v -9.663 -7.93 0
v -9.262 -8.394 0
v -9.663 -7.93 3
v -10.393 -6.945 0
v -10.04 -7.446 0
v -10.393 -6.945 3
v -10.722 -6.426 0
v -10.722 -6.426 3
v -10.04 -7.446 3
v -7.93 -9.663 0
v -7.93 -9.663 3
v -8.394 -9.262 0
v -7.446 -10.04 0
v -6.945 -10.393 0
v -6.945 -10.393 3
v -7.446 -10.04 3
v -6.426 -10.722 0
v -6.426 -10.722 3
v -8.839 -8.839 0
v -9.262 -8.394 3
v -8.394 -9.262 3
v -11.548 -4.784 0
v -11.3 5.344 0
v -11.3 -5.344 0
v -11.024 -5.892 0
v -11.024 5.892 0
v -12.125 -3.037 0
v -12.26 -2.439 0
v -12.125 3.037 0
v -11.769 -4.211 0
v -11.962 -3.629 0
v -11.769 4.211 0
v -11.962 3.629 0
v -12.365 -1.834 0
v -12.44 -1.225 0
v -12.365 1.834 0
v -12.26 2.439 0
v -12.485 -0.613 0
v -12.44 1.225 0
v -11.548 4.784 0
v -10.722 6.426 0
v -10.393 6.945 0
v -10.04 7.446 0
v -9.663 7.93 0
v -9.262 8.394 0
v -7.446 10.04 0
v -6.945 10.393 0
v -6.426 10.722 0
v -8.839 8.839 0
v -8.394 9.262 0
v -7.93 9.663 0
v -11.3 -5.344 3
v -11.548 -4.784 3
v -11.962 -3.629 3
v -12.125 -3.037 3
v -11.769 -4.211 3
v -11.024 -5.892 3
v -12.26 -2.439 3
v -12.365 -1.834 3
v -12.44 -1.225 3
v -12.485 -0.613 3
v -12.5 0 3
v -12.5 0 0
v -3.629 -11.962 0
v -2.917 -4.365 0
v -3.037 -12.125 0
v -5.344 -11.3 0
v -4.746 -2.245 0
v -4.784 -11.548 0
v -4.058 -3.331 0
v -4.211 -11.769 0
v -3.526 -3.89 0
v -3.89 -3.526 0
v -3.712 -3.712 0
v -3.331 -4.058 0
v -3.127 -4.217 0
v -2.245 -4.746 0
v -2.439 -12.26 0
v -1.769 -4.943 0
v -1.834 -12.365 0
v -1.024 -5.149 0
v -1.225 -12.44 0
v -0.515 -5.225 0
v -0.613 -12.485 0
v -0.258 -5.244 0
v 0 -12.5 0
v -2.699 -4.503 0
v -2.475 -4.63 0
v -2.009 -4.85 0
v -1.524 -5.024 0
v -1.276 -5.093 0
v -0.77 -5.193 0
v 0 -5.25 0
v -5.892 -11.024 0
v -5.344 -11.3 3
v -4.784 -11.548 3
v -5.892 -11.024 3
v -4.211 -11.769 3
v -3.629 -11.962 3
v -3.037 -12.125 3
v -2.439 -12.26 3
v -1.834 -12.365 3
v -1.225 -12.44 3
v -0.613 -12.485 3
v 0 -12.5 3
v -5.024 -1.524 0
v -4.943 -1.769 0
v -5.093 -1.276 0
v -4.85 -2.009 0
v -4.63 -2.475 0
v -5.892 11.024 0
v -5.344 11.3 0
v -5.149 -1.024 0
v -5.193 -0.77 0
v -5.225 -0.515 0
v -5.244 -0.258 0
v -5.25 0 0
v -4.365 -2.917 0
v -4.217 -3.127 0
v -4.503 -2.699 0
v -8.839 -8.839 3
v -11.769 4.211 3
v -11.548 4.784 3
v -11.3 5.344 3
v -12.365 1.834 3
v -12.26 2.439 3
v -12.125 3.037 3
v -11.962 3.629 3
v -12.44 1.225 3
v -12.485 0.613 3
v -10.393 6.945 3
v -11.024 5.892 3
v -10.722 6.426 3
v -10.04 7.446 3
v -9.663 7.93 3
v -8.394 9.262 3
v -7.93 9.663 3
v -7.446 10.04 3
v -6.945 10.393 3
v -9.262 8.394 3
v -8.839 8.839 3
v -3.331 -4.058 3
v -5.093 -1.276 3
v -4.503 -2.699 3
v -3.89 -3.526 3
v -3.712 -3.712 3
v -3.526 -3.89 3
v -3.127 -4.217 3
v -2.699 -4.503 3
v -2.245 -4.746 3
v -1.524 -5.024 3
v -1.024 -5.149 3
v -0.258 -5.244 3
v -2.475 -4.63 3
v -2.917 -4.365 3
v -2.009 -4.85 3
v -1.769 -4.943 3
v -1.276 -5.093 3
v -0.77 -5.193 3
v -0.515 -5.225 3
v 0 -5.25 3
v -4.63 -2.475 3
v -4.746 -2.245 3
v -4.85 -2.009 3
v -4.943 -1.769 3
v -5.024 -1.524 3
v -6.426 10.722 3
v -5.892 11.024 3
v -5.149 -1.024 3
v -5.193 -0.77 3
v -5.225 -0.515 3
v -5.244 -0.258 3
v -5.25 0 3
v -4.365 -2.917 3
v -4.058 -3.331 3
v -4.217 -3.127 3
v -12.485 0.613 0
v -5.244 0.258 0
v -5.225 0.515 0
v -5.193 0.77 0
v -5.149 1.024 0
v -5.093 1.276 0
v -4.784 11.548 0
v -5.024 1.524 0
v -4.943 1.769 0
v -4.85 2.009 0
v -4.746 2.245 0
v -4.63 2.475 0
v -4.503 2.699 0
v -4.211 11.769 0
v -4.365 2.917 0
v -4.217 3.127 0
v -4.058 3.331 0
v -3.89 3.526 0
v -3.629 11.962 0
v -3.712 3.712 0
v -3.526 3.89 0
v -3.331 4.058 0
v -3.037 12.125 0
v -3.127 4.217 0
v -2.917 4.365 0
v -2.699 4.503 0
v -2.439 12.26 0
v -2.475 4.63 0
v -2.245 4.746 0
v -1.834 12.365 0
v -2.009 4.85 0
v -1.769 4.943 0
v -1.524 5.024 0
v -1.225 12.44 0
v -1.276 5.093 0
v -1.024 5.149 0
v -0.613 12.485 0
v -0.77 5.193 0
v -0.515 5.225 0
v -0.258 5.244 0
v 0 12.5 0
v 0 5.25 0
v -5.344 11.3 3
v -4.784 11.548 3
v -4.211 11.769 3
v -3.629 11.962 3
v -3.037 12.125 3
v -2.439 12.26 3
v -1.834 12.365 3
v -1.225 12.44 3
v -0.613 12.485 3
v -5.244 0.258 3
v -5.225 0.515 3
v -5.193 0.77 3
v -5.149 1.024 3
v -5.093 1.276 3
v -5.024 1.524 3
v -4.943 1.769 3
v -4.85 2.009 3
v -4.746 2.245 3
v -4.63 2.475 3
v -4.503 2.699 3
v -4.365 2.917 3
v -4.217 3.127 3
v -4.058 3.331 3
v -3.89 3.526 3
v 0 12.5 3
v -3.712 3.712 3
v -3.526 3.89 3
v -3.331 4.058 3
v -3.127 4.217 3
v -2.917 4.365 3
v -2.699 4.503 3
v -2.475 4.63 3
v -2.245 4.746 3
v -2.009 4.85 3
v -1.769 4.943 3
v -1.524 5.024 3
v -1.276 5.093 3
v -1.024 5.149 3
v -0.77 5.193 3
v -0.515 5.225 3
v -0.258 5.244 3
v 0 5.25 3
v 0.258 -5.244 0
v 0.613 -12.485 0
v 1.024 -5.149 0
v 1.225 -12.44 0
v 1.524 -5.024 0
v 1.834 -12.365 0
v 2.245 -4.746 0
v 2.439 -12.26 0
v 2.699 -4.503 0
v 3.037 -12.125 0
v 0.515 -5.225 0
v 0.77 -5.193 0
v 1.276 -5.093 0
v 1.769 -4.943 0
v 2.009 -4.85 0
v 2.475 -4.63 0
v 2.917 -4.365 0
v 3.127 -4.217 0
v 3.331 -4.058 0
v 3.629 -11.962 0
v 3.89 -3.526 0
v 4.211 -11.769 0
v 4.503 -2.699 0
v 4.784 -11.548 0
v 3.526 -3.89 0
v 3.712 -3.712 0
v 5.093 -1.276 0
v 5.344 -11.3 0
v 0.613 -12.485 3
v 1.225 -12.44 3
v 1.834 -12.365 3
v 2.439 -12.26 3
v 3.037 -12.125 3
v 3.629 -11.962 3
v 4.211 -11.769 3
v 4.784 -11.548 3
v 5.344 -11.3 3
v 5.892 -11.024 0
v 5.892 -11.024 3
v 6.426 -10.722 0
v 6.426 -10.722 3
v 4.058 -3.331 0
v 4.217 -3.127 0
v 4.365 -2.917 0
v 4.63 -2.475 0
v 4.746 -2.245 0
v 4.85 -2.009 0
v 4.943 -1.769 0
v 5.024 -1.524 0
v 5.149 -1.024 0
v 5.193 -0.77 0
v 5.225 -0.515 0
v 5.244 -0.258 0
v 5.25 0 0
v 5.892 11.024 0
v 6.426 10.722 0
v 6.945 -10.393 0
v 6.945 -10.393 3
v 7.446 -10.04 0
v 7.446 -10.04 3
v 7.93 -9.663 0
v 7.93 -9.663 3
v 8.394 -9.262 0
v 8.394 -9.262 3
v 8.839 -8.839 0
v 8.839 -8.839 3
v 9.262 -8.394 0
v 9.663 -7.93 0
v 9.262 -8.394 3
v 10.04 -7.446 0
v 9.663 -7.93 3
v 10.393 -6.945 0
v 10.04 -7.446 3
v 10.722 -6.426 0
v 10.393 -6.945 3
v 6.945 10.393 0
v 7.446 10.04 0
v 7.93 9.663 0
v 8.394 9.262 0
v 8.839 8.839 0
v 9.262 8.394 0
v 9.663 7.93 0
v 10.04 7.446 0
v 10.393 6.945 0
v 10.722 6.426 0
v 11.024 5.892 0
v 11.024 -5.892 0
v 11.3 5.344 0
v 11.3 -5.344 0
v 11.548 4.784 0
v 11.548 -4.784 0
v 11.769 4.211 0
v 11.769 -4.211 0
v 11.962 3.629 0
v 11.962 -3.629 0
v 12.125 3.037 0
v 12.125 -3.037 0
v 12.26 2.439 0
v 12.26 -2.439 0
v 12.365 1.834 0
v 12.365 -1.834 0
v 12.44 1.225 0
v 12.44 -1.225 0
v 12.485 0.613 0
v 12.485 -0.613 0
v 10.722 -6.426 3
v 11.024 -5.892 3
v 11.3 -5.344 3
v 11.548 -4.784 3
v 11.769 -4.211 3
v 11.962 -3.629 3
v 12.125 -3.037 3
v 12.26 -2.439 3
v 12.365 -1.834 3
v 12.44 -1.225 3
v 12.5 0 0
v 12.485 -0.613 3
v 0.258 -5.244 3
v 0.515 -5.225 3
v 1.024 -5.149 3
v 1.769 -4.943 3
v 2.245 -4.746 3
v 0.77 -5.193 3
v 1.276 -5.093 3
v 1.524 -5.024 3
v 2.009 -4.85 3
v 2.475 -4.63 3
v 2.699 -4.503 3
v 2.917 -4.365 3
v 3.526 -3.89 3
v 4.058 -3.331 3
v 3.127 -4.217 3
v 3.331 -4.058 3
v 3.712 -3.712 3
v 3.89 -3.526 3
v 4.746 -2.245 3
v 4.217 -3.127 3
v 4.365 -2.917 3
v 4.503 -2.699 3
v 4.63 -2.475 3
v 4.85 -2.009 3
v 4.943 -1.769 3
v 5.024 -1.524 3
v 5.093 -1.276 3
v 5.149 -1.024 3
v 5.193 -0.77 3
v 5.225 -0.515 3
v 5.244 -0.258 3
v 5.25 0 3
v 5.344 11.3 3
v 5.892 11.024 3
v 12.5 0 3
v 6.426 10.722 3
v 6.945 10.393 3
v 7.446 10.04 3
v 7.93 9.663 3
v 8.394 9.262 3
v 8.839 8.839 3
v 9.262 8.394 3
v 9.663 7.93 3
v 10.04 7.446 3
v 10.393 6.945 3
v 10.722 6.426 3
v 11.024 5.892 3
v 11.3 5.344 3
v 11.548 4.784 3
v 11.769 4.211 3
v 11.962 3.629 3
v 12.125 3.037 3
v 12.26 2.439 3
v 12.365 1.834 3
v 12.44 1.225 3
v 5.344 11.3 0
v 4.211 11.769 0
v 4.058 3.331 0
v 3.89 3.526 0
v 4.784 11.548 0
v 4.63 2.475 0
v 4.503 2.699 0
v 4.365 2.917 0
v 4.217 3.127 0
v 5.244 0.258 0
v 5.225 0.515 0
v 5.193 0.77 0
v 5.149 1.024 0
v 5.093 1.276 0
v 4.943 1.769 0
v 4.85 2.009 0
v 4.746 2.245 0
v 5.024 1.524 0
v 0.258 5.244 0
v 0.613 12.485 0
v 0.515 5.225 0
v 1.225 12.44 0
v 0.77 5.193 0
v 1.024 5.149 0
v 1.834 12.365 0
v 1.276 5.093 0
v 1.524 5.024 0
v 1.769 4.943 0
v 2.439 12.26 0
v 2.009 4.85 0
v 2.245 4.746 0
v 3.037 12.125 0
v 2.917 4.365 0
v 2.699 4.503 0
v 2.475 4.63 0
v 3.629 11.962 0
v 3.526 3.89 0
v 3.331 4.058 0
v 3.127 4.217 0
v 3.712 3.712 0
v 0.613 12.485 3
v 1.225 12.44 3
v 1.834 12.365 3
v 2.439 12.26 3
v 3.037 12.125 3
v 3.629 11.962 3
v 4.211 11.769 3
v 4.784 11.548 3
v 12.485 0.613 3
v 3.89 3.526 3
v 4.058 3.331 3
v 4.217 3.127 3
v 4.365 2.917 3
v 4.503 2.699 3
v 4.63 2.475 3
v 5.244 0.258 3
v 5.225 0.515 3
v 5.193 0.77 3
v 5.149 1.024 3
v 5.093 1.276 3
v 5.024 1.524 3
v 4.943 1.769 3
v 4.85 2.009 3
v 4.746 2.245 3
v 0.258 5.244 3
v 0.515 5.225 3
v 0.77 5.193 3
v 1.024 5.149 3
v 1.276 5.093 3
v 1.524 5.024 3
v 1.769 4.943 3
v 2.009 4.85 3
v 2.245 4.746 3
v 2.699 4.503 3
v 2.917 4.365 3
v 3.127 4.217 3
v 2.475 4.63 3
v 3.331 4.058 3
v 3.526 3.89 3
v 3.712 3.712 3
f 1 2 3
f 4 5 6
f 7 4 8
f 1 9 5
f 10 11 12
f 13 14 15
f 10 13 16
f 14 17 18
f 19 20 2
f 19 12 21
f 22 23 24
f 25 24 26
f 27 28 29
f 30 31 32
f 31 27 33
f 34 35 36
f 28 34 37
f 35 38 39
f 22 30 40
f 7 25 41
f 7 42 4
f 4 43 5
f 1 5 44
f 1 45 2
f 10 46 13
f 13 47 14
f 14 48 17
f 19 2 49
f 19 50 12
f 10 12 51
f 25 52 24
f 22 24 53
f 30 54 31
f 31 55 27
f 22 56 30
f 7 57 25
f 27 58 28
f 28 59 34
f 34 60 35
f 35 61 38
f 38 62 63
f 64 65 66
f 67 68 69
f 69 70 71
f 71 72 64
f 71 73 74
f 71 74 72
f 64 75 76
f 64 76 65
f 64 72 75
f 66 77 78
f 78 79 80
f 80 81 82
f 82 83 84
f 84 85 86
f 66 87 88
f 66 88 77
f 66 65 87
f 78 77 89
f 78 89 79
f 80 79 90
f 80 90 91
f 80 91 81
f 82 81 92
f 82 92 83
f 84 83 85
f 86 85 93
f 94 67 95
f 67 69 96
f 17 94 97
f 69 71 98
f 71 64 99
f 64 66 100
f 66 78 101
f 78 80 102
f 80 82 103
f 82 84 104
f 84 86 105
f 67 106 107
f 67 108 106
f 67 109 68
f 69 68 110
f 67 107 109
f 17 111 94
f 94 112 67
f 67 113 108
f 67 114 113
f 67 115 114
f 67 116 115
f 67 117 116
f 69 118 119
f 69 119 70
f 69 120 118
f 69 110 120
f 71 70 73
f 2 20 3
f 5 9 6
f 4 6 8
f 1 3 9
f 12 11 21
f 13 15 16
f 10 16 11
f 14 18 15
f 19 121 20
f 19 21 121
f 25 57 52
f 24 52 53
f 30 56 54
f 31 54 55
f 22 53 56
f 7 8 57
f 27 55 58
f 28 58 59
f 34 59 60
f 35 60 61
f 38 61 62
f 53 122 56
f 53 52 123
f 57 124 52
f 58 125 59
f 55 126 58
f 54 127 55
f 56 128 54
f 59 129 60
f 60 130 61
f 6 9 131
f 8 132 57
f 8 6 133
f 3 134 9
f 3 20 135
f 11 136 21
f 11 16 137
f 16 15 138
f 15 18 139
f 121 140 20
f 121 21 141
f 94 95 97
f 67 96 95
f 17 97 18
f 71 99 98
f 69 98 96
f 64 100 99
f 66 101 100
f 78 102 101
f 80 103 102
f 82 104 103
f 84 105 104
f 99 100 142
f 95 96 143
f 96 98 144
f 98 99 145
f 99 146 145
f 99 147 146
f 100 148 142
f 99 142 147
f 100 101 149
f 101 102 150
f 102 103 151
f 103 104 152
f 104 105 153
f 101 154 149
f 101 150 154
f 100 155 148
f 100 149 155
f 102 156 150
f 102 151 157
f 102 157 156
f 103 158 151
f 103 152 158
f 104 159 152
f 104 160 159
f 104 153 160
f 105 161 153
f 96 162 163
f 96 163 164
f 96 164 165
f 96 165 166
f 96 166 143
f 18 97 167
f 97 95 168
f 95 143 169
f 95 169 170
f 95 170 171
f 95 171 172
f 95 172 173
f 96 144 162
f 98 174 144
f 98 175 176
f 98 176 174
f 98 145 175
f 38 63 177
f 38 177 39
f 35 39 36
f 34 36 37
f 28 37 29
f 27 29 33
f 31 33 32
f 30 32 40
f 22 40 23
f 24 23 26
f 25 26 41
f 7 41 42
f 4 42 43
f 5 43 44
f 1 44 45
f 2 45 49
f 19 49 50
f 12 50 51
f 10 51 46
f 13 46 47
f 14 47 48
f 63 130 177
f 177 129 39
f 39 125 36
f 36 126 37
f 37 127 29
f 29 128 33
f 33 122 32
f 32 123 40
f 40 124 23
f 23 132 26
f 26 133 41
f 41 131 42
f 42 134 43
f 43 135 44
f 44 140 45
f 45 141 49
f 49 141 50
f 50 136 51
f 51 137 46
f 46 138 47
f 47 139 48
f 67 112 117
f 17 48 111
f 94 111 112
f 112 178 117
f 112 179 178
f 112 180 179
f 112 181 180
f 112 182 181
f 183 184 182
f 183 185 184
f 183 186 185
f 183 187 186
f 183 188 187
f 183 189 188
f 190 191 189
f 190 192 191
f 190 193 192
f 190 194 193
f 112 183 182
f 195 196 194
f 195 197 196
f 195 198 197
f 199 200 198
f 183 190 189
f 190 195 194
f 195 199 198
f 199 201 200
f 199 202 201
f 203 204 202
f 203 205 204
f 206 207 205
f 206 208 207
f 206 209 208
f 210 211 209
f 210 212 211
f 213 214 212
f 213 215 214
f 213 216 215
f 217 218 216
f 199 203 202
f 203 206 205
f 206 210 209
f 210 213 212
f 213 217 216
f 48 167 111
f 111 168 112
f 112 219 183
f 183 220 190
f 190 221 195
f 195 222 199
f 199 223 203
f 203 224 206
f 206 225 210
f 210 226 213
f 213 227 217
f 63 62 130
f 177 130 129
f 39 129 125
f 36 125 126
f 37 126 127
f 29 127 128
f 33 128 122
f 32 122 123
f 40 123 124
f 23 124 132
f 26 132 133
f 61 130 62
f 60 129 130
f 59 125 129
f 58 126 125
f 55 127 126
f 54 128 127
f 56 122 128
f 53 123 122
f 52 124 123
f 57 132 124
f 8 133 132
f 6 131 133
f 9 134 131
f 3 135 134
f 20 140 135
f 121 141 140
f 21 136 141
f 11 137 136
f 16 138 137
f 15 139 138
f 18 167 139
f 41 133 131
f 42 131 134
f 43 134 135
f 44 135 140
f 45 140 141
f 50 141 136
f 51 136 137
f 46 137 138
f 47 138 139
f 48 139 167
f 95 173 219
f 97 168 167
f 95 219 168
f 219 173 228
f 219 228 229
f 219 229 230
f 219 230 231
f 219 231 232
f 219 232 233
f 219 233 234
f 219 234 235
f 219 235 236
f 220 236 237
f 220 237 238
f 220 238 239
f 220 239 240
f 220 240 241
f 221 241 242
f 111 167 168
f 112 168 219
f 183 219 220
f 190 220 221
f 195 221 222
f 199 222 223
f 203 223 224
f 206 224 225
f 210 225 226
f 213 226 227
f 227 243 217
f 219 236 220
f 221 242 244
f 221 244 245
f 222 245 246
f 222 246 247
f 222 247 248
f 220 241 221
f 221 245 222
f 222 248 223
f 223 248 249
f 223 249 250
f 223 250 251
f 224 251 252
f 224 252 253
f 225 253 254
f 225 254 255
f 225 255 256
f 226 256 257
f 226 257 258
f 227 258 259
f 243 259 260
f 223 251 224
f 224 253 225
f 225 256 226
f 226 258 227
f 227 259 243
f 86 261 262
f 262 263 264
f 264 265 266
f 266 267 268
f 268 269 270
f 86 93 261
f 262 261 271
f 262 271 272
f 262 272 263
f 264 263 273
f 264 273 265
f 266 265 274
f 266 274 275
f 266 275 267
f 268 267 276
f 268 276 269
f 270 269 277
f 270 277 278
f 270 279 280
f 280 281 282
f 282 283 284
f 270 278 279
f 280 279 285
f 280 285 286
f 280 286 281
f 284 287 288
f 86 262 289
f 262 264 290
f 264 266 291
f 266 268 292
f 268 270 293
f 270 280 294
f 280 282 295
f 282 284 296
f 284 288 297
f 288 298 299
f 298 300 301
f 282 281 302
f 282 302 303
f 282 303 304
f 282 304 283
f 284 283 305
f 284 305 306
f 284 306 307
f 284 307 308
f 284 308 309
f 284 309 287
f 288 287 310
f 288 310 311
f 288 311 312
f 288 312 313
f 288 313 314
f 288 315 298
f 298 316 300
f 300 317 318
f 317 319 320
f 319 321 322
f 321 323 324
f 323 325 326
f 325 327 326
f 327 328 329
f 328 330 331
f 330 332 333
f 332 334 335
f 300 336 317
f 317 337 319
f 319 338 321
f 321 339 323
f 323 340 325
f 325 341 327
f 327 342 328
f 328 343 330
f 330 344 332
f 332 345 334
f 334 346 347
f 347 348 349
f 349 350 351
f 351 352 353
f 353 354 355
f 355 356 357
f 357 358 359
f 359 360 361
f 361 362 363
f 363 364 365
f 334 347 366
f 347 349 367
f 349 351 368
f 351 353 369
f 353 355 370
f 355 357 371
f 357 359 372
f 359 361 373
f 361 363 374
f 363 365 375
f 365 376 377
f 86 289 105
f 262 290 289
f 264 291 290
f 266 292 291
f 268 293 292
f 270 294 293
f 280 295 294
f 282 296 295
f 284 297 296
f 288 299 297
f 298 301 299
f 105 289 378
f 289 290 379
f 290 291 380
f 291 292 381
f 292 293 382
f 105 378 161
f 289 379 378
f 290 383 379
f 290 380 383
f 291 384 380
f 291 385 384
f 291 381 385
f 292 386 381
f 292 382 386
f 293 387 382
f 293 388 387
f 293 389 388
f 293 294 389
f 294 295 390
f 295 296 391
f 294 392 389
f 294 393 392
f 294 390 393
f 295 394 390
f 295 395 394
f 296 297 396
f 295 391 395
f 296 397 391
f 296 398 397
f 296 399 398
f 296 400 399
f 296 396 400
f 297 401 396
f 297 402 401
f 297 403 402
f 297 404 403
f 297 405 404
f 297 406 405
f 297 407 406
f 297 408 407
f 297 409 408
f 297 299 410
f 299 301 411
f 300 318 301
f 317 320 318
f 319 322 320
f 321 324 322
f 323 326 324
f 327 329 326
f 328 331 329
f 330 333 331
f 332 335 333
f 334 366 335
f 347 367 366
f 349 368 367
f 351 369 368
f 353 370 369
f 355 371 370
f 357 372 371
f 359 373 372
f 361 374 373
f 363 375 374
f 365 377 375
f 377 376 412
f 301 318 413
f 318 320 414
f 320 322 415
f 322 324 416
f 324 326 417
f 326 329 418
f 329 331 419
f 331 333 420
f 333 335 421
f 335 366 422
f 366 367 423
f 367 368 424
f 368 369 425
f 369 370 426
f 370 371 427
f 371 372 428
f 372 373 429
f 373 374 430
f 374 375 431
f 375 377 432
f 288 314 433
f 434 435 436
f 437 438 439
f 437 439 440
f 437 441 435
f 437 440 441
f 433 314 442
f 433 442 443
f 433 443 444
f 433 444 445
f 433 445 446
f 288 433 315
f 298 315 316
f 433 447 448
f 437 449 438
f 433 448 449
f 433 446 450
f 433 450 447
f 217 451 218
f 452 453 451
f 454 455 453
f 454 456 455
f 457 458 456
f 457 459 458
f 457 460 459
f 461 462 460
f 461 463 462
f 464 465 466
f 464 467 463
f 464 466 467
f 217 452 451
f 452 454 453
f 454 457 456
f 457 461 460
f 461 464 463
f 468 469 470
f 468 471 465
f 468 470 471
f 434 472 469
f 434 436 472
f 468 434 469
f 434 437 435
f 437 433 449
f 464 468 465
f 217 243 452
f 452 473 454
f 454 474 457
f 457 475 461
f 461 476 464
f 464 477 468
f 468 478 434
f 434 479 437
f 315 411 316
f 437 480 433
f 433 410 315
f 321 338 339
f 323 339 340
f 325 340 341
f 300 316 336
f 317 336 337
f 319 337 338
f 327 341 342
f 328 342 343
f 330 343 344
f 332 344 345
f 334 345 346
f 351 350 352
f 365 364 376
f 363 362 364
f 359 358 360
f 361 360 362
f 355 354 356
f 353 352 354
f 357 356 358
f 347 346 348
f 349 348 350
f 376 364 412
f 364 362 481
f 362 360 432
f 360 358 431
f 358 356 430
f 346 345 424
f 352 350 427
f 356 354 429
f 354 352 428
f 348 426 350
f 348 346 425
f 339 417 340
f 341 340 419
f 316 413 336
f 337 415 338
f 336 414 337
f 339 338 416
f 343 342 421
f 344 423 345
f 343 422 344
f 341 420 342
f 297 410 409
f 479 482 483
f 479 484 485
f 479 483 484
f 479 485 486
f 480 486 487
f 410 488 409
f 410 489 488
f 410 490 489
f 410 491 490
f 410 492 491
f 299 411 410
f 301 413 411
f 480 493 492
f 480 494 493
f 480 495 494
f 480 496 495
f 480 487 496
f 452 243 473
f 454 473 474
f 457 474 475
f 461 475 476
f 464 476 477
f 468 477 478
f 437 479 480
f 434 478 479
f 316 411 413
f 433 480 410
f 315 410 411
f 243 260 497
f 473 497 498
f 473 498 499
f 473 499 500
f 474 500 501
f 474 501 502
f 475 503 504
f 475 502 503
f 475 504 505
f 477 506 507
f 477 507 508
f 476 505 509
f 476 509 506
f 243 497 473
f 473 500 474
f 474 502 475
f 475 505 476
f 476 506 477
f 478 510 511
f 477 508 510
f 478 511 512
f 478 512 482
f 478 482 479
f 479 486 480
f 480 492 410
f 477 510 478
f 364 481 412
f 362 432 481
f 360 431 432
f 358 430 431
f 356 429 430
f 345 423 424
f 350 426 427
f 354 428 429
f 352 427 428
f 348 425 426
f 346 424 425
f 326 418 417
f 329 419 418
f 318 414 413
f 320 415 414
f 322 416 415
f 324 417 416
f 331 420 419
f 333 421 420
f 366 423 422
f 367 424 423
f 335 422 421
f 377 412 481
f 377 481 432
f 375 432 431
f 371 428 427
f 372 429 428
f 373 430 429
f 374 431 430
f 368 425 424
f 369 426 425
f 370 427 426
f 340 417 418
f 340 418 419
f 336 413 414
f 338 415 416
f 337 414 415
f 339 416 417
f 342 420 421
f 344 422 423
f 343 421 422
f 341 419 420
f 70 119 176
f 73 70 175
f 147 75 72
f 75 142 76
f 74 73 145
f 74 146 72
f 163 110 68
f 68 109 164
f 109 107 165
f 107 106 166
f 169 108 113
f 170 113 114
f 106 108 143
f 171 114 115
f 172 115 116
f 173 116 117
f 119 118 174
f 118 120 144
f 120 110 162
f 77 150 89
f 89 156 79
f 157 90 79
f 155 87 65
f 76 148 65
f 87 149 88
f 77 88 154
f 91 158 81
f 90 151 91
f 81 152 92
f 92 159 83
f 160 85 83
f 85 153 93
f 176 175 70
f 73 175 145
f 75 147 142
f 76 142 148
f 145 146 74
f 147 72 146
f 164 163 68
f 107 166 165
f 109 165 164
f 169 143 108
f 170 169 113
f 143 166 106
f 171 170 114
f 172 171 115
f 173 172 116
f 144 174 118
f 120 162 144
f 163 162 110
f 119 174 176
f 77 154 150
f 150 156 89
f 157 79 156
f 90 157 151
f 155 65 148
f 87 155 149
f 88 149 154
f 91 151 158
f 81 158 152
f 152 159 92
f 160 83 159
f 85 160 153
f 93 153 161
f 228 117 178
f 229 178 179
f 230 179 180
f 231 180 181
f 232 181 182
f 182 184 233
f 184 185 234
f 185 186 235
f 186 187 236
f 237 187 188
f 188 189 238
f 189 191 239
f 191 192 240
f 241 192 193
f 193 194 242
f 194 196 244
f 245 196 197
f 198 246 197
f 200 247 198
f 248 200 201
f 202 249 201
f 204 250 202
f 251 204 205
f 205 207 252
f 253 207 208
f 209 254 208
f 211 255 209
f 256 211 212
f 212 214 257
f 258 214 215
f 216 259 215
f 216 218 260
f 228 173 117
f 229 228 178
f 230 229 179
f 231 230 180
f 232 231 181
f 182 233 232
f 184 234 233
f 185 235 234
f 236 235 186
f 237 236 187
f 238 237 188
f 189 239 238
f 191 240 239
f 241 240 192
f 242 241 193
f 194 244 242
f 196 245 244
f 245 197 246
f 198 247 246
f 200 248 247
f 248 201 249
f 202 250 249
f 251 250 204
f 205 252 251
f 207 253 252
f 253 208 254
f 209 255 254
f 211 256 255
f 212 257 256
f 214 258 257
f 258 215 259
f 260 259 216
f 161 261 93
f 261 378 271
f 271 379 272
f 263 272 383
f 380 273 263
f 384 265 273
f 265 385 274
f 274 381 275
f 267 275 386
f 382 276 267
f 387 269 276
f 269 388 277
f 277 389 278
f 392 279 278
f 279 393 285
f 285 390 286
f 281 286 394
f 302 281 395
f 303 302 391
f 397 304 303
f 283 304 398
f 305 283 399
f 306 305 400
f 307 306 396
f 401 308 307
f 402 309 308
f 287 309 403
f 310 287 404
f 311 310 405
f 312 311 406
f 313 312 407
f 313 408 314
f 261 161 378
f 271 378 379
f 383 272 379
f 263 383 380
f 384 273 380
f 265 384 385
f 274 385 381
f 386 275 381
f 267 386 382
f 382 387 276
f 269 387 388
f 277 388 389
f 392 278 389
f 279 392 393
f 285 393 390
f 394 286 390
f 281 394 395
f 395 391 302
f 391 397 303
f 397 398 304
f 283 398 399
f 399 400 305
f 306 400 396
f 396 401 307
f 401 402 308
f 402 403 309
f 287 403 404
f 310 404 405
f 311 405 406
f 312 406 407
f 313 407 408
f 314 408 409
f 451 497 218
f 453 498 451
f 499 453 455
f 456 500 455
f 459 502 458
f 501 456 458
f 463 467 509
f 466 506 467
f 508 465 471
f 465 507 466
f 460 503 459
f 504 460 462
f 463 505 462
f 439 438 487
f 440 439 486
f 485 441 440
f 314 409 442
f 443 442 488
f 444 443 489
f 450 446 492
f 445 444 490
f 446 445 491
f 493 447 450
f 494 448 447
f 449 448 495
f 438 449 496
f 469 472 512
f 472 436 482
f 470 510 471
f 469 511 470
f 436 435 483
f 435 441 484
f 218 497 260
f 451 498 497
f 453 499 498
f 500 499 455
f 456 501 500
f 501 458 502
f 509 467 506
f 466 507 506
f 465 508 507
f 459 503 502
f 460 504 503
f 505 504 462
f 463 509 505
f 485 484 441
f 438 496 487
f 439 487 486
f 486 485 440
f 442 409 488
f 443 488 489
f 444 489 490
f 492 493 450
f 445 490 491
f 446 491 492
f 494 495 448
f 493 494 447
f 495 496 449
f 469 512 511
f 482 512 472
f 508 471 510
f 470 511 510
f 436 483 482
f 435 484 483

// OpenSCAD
// fender_washer_001.scad
// Fender washer: 10.5mm bore, 25mm OD, 3mm thick.

$fn = 128;

id = 10.5;
od = 25;
t  = 3;

difference() {
    cylinder(d=od, h=t);
    translate([0, 0, -1]) cylinder(d=id, h=t + 2);
}
